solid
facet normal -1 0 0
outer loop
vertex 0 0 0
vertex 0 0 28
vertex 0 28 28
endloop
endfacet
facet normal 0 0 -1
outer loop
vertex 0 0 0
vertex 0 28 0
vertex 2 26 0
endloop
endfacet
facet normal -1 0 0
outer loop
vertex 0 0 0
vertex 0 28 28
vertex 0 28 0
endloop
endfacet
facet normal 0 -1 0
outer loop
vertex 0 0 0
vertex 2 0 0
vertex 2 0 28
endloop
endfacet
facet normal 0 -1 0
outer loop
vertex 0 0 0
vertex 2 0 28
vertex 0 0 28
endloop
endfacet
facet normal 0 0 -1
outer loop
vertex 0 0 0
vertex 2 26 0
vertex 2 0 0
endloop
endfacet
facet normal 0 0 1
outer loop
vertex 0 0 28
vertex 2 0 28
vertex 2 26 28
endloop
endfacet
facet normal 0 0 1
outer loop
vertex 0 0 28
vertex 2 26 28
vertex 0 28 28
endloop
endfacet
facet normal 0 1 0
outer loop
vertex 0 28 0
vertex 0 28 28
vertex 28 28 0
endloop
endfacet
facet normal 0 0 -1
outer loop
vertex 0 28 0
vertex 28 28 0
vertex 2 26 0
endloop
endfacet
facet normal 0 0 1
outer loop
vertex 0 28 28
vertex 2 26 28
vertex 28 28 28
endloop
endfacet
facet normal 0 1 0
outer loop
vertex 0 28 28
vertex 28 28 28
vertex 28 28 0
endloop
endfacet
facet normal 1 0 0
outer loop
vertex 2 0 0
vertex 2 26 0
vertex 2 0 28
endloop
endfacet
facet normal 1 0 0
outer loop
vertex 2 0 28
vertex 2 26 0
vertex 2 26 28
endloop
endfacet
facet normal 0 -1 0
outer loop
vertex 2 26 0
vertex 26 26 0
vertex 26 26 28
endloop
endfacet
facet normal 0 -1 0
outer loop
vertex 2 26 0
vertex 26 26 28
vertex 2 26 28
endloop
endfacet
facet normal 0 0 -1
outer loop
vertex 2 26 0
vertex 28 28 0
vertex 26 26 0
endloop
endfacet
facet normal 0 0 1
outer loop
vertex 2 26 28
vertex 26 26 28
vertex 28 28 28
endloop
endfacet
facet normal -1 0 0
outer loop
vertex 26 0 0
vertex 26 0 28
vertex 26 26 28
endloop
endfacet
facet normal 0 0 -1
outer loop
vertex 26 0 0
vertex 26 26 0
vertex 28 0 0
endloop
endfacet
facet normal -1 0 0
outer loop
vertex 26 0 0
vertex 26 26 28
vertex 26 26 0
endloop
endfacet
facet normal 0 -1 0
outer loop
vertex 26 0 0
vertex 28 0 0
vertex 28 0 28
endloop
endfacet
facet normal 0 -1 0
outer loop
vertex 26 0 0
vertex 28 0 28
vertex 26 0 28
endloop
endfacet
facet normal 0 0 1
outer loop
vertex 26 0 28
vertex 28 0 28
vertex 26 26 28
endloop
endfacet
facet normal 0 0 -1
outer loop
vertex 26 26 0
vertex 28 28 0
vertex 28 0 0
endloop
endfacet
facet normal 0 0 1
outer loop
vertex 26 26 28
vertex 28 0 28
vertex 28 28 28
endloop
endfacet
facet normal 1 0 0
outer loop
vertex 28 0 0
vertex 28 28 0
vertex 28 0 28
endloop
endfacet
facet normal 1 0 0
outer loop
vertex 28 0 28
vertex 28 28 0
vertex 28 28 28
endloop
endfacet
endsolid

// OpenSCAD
difference() {
    cube(28);
    translate([2,0,0])
    cube([24,26,28]);
};
